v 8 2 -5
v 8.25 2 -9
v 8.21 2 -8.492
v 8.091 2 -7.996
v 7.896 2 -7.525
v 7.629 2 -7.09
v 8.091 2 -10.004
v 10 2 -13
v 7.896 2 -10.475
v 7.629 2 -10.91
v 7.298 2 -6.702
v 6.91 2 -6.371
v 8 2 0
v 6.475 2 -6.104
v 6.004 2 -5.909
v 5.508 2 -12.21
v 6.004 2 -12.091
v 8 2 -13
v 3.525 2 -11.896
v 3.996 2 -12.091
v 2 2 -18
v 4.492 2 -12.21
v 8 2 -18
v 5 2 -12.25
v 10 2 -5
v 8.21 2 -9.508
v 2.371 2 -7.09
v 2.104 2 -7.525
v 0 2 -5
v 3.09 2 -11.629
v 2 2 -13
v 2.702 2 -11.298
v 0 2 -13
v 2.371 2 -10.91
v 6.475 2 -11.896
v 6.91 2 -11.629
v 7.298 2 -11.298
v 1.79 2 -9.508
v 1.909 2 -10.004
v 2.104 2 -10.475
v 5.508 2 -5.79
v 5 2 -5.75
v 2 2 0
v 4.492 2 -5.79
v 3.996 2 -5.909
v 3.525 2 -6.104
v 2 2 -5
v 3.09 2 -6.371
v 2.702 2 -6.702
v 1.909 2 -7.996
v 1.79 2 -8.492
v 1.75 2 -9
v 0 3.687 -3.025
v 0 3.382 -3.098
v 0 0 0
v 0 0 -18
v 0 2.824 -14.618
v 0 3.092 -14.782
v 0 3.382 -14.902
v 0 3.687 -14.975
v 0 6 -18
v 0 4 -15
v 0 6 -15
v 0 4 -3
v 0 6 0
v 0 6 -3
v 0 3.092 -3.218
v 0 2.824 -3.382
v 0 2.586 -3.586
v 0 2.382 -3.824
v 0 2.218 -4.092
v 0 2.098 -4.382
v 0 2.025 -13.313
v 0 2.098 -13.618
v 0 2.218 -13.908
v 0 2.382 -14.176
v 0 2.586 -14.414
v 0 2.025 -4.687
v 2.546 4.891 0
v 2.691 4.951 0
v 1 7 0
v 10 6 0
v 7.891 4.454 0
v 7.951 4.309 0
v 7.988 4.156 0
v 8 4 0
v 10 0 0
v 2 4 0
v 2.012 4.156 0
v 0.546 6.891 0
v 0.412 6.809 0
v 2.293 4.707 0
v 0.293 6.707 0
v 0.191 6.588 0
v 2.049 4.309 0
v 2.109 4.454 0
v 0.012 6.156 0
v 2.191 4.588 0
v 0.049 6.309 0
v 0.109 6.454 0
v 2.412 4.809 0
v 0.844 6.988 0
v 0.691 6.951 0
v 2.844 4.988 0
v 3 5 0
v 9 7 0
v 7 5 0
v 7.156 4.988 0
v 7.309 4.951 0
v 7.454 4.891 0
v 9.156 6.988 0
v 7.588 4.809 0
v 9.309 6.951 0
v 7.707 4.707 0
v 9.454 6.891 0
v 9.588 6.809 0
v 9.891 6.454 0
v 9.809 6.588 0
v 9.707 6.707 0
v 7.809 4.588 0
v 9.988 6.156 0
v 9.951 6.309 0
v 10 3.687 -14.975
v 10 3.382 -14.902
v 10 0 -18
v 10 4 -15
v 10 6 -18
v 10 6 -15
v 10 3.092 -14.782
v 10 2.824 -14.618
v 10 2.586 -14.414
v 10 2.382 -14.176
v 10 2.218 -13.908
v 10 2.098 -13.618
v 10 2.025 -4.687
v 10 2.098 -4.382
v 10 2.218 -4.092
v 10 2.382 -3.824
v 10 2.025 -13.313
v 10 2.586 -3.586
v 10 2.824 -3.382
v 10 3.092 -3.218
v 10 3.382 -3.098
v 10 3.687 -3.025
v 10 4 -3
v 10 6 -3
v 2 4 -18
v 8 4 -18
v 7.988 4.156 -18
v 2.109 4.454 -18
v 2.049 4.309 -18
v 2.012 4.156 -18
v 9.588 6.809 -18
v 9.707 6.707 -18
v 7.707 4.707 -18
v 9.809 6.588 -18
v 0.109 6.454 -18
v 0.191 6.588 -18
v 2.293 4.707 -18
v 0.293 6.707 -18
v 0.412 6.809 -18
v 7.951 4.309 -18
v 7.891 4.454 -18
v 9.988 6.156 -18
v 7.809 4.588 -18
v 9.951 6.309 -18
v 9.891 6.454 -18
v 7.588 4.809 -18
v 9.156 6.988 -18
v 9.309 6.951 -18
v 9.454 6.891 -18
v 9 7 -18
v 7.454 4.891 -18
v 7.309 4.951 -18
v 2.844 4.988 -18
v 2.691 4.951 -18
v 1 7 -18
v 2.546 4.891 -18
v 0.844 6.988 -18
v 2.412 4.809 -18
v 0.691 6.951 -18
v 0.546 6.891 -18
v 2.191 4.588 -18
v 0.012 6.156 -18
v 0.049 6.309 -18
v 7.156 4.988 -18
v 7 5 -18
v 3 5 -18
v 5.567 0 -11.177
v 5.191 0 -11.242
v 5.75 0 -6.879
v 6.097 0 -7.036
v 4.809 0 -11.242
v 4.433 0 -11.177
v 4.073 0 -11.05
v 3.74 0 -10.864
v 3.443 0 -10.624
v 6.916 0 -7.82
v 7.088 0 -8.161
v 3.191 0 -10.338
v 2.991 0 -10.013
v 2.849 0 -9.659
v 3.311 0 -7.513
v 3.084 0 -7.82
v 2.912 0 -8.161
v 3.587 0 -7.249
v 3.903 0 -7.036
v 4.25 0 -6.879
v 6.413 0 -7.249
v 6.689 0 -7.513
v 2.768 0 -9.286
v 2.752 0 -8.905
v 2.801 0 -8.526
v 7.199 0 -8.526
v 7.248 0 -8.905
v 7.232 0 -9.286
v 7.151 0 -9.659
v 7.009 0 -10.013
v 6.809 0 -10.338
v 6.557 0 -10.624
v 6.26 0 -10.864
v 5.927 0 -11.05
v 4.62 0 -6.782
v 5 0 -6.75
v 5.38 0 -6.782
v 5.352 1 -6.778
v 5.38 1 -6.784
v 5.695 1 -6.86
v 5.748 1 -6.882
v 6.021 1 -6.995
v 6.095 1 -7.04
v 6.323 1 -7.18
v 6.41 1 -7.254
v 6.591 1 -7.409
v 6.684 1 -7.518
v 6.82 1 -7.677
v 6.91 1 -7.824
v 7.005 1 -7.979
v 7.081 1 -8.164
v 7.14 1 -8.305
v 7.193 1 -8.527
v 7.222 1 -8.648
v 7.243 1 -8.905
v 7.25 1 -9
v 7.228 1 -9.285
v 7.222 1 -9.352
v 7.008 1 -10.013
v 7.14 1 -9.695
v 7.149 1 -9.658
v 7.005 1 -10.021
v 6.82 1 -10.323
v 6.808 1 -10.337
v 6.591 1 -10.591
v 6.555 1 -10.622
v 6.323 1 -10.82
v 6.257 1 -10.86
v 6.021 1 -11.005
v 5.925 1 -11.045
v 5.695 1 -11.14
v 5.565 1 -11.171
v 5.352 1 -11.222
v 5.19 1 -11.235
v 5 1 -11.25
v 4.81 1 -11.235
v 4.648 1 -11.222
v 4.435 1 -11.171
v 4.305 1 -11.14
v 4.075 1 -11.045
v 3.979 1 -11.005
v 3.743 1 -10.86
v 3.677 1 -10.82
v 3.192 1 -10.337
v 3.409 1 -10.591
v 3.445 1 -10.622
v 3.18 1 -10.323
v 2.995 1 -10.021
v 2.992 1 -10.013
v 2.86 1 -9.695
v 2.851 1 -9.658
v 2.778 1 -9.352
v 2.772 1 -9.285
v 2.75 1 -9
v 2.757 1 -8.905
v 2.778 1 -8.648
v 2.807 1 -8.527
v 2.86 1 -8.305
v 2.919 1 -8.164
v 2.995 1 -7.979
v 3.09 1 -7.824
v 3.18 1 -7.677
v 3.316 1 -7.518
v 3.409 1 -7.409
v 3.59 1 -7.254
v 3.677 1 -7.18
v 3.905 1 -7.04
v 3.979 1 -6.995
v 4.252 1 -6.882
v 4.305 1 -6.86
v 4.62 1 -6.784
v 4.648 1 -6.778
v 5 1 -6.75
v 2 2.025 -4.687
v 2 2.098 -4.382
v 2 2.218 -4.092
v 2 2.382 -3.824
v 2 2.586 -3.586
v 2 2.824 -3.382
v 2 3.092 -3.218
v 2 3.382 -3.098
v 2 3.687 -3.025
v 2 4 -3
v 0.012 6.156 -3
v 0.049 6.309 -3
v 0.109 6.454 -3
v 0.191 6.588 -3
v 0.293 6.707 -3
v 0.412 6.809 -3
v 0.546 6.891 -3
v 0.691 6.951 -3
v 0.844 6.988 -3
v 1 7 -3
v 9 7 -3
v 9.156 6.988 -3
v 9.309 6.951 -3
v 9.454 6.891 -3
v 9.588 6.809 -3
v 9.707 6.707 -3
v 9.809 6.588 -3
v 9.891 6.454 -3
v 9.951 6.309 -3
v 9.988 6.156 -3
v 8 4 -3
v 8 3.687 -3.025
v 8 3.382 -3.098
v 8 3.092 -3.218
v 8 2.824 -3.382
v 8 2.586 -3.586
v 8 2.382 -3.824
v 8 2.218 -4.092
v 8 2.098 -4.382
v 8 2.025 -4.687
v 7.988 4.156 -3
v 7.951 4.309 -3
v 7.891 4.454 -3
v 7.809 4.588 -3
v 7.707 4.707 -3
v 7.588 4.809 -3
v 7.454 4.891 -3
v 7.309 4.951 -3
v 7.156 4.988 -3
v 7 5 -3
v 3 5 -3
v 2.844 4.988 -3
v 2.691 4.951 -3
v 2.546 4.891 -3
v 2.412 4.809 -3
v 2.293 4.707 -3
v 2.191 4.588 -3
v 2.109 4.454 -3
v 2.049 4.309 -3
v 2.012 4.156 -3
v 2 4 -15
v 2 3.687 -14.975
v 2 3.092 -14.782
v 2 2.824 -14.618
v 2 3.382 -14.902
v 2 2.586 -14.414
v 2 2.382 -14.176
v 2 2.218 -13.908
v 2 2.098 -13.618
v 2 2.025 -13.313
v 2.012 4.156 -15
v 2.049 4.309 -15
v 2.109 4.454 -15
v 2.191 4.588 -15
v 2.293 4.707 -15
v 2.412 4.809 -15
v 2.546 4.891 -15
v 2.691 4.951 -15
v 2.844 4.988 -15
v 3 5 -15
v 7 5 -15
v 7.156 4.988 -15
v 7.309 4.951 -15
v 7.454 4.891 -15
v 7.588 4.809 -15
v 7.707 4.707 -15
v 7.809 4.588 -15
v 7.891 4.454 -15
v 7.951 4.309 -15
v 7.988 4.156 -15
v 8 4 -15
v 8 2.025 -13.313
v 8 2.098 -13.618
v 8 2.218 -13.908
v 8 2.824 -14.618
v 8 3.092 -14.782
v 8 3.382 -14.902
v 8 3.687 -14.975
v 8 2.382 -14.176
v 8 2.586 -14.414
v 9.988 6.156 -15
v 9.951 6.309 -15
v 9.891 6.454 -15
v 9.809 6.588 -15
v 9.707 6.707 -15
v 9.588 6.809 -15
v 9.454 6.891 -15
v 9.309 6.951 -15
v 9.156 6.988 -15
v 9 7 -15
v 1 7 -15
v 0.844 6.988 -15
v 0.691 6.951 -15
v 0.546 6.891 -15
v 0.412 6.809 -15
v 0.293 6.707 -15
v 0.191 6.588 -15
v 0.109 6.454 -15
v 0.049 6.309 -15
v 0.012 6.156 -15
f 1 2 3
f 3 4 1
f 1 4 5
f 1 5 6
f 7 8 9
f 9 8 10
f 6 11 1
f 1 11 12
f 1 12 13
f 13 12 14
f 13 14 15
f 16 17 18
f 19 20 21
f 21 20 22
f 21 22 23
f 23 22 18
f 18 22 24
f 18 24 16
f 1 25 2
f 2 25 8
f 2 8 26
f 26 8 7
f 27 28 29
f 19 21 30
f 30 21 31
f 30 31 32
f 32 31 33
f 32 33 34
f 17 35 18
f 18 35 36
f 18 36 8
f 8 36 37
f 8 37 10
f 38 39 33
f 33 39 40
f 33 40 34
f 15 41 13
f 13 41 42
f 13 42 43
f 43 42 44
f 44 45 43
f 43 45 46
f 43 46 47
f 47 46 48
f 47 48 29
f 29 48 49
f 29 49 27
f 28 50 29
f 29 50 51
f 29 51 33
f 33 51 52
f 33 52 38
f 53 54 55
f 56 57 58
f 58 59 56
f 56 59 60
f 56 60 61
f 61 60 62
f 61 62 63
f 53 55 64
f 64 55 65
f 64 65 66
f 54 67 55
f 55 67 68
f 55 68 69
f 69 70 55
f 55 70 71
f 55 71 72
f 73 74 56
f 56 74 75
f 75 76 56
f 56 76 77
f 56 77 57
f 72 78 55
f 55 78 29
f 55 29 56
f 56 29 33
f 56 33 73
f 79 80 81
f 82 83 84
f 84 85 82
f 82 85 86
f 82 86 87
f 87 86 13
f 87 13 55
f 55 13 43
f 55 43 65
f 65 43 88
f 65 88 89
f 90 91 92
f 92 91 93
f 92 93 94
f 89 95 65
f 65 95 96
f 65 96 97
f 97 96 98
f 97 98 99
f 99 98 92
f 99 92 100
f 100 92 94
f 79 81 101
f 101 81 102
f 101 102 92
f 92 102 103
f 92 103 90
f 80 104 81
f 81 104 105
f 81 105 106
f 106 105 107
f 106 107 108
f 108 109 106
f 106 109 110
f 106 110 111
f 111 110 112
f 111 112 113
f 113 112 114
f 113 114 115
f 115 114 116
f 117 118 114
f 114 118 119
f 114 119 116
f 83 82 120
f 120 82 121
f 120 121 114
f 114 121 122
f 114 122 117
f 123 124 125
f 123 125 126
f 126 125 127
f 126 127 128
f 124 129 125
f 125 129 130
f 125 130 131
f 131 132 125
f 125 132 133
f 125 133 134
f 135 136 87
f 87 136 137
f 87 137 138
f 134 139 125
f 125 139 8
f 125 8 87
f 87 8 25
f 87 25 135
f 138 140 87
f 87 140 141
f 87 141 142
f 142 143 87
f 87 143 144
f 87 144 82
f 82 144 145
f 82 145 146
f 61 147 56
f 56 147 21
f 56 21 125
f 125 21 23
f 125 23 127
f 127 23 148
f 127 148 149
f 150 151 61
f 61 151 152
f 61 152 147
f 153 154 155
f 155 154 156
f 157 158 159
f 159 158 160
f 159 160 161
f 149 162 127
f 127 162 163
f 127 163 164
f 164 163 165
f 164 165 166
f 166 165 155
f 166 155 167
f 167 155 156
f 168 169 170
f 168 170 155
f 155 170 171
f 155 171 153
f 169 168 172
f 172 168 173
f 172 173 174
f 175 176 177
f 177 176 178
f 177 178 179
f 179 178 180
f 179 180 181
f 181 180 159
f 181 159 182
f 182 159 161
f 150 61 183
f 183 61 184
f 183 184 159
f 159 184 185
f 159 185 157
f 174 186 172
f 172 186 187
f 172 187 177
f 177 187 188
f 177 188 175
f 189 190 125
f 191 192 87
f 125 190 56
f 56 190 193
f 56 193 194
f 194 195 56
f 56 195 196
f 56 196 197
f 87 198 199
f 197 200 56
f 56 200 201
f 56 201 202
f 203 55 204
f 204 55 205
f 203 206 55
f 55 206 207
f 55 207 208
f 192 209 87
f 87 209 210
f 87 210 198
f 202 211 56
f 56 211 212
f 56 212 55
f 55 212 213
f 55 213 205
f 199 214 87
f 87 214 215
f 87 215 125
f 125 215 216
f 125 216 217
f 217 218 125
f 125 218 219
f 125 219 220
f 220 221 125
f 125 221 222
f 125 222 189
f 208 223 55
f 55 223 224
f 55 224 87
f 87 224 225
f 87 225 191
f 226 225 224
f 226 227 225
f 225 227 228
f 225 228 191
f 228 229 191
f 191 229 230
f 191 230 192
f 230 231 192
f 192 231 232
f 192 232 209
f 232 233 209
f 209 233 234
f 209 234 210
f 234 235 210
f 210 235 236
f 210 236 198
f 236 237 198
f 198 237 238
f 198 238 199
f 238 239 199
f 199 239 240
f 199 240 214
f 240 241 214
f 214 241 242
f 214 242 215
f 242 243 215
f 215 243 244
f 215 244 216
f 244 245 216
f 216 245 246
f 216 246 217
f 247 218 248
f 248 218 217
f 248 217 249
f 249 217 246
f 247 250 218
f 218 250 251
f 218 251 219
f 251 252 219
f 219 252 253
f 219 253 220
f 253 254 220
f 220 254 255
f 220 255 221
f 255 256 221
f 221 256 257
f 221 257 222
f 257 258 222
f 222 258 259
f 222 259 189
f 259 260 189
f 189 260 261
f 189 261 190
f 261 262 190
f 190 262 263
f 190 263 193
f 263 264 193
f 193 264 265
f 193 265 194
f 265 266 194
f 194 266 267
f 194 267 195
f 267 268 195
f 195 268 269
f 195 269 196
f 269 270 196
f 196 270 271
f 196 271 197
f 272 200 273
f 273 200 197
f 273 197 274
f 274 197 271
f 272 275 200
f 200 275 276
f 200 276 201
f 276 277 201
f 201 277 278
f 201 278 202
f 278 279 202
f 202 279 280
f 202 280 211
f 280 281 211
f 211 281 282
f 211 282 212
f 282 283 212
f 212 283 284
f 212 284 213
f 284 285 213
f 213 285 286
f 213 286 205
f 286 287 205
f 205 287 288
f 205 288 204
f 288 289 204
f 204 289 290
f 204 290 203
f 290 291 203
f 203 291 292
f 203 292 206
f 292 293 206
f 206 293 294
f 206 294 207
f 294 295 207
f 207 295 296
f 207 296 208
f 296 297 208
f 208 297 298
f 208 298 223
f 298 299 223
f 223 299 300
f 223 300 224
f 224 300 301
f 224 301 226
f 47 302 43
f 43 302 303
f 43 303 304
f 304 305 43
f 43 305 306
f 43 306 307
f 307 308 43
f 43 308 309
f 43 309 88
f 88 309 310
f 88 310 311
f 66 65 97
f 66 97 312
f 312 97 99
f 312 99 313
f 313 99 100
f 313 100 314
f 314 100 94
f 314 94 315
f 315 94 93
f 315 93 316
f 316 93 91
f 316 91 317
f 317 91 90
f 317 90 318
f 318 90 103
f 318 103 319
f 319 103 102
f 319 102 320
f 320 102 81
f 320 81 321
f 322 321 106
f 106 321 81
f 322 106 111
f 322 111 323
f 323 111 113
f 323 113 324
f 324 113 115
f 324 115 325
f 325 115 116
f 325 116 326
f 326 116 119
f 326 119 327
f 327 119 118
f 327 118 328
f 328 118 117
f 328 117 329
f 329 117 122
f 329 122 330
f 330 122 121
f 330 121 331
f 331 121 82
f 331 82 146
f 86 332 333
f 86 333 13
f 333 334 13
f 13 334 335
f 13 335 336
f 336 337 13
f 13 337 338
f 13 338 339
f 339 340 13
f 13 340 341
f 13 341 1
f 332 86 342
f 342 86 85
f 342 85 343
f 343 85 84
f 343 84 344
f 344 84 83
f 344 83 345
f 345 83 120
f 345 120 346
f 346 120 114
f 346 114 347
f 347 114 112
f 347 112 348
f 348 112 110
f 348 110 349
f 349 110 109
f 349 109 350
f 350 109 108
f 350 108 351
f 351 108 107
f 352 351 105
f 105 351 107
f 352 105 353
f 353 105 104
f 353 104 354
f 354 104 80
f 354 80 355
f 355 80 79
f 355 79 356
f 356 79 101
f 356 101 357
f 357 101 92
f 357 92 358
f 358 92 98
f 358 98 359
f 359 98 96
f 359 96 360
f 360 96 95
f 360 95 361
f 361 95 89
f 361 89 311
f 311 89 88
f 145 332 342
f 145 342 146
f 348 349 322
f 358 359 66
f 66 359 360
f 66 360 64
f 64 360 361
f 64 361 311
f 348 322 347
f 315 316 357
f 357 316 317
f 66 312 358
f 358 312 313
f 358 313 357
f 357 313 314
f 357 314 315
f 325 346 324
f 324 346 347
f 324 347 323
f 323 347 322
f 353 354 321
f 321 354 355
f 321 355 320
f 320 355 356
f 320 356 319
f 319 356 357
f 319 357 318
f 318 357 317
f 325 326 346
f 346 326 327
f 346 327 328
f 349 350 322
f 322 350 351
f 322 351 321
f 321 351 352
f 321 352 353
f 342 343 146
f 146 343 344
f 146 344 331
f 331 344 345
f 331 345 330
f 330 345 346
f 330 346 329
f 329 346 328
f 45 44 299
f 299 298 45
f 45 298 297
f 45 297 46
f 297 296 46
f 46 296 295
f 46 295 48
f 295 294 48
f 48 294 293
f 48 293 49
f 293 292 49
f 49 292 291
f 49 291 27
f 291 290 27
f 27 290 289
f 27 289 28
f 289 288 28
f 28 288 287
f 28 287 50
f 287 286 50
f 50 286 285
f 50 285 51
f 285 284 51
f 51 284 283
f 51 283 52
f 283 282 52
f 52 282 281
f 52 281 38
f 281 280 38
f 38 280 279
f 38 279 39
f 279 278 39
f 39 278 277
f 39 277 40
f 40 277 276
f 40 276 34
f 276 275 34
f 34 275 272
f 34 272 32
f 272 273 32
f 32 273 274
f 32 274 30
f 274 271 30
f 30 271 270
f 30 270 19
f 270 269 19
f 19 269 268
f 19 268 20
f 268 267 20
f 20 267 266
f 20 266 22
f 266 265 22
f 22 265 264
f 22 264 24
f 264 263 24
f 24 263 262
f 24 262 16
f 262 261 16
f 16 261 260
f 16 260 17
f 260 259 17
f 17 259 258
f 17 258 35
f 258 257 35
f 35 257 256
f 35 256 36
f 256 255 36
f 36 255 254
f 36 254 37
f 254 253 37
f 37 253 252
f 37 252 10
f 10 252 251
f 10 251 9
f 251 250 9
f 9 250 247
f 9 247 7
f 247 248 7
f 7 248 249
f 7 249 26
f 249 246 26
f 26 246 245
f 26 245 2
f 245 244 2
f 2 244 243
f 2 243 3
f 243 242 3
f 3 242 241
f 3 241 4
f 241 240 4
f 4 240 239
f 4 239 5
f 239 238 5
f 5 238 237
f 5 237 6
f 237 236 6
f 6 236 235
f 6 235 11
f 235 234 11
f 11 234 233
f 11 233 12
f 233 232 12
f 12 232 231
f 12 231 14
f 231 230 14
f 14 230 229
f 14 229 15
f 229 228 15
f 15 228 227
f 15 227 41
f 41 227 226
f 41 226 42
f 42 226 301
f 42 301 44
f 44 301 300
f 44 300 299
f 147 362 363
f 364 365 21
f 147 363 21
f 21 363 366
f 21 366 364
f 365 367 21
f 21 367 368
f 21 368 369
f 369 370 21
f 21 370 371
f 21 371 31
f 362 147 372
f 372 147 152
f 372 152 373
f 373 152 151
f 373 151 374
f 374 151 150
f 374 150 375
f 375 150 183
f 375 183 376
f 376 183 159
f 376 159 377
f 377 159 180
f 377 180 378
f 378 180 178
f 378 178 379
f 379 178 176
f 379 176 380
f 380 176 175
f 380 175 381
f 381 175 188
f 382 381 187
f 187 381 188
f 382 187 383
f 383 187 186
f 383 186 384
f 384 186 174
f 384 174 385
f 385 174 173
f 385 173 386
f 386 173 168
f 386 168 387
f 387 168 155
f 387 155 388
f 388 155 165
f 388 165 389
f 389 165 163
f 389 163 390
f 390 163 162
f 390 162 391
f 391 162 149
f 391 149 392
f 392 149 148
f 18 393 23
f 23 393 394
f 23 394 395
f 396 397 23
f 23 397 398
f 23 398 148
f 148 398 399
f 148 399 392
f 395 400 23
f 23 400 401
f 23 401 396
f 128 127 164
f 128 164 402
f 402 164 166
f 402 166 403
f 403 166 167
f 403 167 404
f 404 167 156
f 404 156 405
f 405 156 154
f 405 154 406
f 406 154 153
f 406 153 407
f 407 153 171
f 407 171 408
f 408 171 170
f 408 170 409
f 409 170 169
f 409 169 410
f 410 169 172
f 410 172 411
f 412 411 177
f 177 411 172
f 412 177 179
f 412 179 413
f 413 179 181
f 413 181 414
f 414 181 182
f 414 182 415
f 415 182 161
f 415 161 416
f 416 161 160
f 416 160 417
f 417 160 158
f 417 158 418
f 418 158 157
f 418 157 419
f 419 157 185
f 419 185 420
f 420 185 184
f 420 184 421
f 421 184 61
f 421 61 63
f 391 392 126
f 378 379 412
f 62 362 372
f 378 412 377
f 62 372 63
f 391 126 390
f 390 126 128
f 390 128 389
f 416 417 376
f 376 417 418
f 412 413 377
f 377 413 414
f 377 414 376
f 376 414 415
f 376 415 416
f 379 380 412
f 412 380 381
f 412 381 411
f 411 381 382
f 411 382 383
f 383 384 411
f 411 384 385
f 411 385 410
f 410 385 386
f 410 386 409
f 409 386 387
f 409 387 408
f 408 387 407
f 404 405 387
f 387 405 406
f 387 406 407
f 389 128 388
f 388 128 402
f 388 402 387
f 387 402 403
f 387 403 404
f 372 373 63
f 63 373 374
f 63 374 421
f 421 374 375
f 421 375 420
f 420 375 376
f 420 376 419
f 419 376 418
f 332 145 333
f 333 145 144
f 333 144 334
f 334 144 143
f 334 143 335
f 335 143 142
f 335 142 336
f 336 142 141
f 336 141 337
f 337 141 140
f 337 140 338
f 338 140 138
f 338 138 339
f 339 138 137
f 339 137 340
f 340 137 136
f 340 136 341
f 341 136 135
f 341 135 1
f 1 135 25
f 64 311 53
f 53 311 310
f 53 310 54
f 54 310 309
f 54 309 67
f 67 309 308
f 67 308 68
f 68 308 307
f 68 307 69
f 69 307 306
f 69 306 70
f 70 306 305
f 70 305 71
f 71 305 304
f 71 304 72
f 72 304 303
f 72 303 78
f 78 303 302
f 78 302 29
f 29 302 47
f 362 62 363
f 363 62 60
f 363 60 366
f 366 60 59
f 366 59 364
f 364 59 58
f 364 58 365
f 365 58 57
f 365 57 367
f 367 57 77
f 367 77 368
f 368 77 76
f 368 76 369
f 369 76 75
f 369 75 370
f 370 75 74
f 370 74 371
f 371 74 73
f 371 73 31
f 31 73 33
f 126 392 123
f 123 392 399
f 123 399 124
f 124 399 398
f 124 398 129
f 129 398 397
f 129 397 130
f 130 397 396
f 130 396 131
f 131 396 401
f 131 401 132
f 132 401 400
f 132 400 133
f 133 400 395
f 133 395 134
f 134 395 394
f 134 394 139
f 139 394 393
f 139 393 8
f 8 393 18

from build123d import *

# Parameters (mm, degrees)
SKETCH_1_W          = 10
SKETCH_1_H          = 18
EXTRUDE_1_DEPTH     = 2
SKETCH_2_R          = 2.25
CUT_EXTRUDE_1_DEPTH = 2
EXTRUDE_2_DEPTH     = 3
CHAMFER_1_SIZE      = 1
EXTRUDE_START       = -18
EXTRUDE_3_DEPTH     = 3
FILLET_1_R          = 2


with BuildPart() as part:
    # Эскиз1 → Бобышка-Вытянуть1 (new body)
    with BuildSketch(Plane(origin=(0, 0, 0), x_dir=(1, 0, 0), z_dir=(0, 1, 0))):
        with Locations((5, 9)):
            Rectangle(SKETCH_1_W, SKETCH_1_H)
    extrude(amount=EXTRUDE_1_DEPTH)

    # Эскиз2 → Вырез-Вытянуть1 (cut)
    with BuildSketch(Plane(origin=(0, 2, 0), x_dir=(1, 0, 0), z_dir=(0, 1, 0))):
        with Locations(Location((5, 9, 0), (0, 0, 270))):
            Circle(SKETCH_2_R)
    extrude(amount=-CUT_EXTRUDE_1_DEPTH, mode=Mode.SUBTRACT)

    # Эскиз4 → Бобышка-Вытянуть2 (add)
    with BuildSketch(Plane.XY):
        with BuildLine():
            Line((0, 6), (0, 2))
            Line((0, 2), (2, 2))
            Line((2, 2), (2, 4))
            ThreePointArc((2, 4), (2.292893219, 4.707106781), (3, 5))
            Line((3, 5), (7, 5))
            ThreePointArc((7, 5), (7.707106781, 4.707106781), (8, 4))
            Line((8, 4), (8, 2))
            Line((8, 2), (10, 2))
            Line((10, 2), (10, 6))
            ThreePointArc((10, 6), (9.707106781, 6.707106781), (9, 7))
            Line((9, 7), (8, 7))
            Line((8, 7), (2, 7))
            Line((2, 7), (1, 7))
            ThreePointArc((1, 7), (0.292893219, 6.707106781), (0, 6))
        make_face()
    extrude(amount=-EXTRUDE_2_DEPTH)

    # Фаска1
    chamfer_1_edges = [part.edges().sort_by_distance(p)[0] for p in [
        (5, 2, -11.25),
    ]]
    chamfer(chamfer_1_edges, length=CHAMFER_1_SIZE)

    # Эскиз4<3> → Бобышка-Вытянуть3 (add)
    with BuildSketch(Plane.XY.offset(EXTRUDE_START)):
        with BuildLine():
            Line((0, 2), (2, 2))
            Line((2, 2), (2, 4))
            ThreePointArc((2, 4), (2.292893219, 4.707106781), (3, 5))
            Line((3, 5), (7, 5))
            ThreePointArc((7, 5), (7.707106781, 4.707106781), (8, 4))
            Line((8, 4), (8, 2))
            Line((8, 2), (10, 2))
            Line((10, 2), (10, 6))
            ThreePointArc((10, 6), (9.707106781, 6.707106781), (9, 7))
            Line((9, 7), (8, 7))
            Line((8, 7), (2, 7))
            Line((2, 7), (1, 7))
            ThreePointArc((1, 7), (0.292893219, 6.707106781), (0, 6))
            Line((0, 6), (0, 2))
        make_face()
    extrude(amount=EXTRUDE_3_DEPTH)

    # Скругление1
    fillet_1_edges = [part.edges().sort_by_distance(p)[0] for p in [
        (9, 2, -3),
        (1, 2, -3),
        (1, 2, -15),
        (9, 2, -15),
    ]]
    fillet(fillet_1_edges, radius=FILLET_1_R)


solid = part.part
